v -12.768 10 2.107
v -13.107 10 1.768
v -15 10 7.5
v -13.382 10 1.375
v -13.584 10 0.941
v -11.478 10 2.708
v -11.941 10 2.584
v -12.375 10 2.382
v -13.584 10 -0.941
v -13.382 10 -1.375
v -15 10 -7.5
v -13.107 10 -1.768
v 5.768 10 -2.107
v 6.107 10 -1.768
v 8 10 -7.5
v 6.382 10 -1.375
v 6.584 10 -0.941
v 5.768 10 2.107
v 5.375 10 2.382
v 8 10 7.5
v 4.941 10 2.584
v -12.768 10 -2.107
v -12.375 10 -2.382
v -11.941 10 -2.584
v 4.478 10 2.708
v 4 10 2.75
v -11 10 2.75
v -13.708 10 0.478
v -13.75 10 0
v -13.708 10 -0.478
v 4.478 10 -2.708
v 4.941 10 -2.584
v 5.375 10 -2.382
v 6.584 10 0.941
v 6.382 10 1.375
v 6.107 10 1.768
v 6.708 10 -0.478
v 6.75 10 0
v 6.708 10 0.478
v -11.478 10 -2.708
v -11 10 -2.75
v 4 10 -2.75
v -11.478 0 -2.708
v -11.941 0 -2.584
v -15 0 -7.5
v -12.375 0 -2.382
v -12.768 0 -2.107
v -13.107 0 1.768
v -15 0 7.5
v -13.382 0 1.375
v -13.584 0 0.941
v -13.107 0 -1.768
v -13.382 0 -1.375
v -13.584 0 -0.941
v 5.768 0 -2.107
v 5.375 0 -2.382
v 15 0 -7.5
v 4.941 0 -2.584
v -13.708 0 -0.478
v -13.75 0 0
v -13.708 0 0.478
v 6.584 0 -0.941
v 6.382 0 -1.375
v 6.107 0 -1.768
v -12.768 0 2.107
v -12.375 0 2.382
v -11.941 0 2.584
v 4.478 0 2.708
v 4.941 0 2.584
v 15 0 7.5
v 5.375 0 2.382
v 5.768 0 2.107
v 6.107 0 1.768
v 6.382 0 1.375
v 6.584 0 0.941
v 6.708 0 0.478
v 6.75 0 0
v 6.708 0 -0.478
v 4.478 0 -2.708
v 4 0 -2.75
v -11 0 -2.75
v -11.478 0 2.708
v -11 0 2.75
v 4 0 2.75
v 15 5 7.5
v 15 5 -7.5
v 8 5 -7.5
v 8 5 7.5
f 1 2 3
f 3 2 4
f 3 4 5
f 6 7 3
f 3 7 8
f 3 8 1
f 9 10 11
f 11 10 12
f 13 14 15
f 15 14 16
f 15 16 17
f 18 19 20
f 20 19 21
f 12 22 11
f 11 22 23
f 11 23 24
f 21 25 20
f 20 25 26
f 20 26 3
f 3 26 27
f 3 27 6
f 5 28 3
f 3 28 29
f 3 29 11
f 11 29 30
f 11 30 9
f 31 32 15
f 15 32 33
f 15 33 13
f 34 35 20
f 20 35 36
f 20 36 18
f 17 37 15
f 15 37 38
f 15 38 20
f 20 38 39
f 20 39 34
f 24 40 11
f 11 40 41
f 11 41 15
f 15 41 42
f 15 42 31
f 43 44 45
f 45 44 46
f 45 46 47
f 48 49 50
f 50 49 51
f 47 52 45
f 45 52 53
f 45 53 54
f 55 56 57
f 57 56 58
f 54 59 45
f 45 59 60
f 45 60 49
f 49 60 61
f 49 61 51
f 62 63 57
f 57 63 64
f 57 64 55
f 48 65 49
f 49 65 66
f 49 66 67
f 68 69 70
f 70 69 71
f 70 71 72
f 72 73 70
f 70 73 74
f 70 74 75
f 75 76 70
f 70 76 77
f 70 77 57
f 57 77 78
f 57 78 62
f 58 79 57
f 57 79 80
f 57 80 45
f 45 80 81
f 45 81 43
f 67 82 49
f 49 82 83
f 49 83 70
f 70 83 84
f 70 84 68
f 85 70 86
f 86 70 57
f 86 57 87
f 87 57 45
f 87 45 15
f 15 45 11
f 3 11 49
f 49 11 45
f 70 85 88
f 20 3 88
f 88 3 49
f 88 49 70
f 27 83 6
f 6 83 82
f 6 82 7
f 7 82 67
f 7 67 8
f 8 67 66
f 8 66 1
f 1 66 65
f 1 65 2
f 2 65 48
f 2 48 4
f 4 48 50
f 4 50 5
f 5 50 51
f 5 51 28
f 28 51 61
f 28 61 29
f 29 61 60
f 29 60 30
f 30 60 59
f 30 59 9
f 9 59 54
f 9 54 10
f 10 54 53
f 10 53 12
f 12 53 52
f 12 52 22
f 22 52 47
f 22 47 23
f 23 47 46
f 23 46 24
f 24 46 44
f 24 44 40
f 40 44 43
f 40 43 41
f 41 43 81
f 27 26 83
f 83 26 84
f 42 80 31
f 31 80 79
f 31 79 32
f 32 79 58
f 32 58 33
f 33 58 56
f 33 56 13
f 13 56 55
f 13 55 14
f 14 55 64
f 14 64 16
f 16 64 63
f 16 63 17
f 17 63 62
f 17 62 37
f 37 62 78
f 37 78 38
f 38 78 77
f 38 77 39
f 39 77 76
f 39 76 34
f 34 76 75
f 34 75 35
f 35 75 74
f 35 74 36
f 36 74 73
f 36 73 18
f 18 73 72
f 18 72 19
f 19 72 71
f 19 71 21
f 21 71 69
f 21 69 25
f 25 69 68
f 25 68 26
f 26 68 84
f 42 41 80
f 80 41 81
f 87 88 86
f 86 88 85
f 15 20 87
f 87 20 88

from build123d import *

# Parameters (mm, degrees)
SKETCH1_W               = 30
SKETCH1_H               = 15
BOSS_EXTRUDE1_DEPTH     = 10
CUT_EXTRUDE1_DEPTH      = 24.452078799
CUT_EXTRUDE1_DEPTH_BACK = 24.452078799
SKETCH2_W               = 7
SKETCH2_H               = 5


with BuildPart() as part:
    # Sketch1 → Boss-Extrude1 (new body)
    with BuildSketch(Plane(origin=(0, 0, 0), x_dir=(1, 0, 0), z_dir=(0, 1, 0))):
        Rectangle(SKETCH1_W, SKETCH1_H)
        with BuildLine():
            Line((-11, 2.75), (4, 2.75))
            ThreePointArc((4, 2.75), (6.75, 0), (4, -2.75))
            Line((4, -2.75), (-11, -2.75))
            ThreePointArc((-11, -2.75), (-13.75, 0), (-11, 2.75))
        make_face(mode=Mode.SUBTRACT)
    extrude(amount=BOSS_EXTRUDE1_DEPTH)

    # Sketch2 → Cut-Extrude1 (cut, two sides: drawn at the far end of the back side and taken through both)
    with BuildSketch(Plane.XY.offset(7.5).offset(-CUT_EXTRUDE1_DEPTH_BACK)):
        with Locations((11.5, 7.5)):
            Rectangle(SKETCH2_W, SKETCH2_H)
    extrude(amount=CUT_EXTRUDE1_DEPTH + CUT_EXTRUDE1_DEPTH_BACK, mode=Mode.SUBTRACT)


solid = part.part
